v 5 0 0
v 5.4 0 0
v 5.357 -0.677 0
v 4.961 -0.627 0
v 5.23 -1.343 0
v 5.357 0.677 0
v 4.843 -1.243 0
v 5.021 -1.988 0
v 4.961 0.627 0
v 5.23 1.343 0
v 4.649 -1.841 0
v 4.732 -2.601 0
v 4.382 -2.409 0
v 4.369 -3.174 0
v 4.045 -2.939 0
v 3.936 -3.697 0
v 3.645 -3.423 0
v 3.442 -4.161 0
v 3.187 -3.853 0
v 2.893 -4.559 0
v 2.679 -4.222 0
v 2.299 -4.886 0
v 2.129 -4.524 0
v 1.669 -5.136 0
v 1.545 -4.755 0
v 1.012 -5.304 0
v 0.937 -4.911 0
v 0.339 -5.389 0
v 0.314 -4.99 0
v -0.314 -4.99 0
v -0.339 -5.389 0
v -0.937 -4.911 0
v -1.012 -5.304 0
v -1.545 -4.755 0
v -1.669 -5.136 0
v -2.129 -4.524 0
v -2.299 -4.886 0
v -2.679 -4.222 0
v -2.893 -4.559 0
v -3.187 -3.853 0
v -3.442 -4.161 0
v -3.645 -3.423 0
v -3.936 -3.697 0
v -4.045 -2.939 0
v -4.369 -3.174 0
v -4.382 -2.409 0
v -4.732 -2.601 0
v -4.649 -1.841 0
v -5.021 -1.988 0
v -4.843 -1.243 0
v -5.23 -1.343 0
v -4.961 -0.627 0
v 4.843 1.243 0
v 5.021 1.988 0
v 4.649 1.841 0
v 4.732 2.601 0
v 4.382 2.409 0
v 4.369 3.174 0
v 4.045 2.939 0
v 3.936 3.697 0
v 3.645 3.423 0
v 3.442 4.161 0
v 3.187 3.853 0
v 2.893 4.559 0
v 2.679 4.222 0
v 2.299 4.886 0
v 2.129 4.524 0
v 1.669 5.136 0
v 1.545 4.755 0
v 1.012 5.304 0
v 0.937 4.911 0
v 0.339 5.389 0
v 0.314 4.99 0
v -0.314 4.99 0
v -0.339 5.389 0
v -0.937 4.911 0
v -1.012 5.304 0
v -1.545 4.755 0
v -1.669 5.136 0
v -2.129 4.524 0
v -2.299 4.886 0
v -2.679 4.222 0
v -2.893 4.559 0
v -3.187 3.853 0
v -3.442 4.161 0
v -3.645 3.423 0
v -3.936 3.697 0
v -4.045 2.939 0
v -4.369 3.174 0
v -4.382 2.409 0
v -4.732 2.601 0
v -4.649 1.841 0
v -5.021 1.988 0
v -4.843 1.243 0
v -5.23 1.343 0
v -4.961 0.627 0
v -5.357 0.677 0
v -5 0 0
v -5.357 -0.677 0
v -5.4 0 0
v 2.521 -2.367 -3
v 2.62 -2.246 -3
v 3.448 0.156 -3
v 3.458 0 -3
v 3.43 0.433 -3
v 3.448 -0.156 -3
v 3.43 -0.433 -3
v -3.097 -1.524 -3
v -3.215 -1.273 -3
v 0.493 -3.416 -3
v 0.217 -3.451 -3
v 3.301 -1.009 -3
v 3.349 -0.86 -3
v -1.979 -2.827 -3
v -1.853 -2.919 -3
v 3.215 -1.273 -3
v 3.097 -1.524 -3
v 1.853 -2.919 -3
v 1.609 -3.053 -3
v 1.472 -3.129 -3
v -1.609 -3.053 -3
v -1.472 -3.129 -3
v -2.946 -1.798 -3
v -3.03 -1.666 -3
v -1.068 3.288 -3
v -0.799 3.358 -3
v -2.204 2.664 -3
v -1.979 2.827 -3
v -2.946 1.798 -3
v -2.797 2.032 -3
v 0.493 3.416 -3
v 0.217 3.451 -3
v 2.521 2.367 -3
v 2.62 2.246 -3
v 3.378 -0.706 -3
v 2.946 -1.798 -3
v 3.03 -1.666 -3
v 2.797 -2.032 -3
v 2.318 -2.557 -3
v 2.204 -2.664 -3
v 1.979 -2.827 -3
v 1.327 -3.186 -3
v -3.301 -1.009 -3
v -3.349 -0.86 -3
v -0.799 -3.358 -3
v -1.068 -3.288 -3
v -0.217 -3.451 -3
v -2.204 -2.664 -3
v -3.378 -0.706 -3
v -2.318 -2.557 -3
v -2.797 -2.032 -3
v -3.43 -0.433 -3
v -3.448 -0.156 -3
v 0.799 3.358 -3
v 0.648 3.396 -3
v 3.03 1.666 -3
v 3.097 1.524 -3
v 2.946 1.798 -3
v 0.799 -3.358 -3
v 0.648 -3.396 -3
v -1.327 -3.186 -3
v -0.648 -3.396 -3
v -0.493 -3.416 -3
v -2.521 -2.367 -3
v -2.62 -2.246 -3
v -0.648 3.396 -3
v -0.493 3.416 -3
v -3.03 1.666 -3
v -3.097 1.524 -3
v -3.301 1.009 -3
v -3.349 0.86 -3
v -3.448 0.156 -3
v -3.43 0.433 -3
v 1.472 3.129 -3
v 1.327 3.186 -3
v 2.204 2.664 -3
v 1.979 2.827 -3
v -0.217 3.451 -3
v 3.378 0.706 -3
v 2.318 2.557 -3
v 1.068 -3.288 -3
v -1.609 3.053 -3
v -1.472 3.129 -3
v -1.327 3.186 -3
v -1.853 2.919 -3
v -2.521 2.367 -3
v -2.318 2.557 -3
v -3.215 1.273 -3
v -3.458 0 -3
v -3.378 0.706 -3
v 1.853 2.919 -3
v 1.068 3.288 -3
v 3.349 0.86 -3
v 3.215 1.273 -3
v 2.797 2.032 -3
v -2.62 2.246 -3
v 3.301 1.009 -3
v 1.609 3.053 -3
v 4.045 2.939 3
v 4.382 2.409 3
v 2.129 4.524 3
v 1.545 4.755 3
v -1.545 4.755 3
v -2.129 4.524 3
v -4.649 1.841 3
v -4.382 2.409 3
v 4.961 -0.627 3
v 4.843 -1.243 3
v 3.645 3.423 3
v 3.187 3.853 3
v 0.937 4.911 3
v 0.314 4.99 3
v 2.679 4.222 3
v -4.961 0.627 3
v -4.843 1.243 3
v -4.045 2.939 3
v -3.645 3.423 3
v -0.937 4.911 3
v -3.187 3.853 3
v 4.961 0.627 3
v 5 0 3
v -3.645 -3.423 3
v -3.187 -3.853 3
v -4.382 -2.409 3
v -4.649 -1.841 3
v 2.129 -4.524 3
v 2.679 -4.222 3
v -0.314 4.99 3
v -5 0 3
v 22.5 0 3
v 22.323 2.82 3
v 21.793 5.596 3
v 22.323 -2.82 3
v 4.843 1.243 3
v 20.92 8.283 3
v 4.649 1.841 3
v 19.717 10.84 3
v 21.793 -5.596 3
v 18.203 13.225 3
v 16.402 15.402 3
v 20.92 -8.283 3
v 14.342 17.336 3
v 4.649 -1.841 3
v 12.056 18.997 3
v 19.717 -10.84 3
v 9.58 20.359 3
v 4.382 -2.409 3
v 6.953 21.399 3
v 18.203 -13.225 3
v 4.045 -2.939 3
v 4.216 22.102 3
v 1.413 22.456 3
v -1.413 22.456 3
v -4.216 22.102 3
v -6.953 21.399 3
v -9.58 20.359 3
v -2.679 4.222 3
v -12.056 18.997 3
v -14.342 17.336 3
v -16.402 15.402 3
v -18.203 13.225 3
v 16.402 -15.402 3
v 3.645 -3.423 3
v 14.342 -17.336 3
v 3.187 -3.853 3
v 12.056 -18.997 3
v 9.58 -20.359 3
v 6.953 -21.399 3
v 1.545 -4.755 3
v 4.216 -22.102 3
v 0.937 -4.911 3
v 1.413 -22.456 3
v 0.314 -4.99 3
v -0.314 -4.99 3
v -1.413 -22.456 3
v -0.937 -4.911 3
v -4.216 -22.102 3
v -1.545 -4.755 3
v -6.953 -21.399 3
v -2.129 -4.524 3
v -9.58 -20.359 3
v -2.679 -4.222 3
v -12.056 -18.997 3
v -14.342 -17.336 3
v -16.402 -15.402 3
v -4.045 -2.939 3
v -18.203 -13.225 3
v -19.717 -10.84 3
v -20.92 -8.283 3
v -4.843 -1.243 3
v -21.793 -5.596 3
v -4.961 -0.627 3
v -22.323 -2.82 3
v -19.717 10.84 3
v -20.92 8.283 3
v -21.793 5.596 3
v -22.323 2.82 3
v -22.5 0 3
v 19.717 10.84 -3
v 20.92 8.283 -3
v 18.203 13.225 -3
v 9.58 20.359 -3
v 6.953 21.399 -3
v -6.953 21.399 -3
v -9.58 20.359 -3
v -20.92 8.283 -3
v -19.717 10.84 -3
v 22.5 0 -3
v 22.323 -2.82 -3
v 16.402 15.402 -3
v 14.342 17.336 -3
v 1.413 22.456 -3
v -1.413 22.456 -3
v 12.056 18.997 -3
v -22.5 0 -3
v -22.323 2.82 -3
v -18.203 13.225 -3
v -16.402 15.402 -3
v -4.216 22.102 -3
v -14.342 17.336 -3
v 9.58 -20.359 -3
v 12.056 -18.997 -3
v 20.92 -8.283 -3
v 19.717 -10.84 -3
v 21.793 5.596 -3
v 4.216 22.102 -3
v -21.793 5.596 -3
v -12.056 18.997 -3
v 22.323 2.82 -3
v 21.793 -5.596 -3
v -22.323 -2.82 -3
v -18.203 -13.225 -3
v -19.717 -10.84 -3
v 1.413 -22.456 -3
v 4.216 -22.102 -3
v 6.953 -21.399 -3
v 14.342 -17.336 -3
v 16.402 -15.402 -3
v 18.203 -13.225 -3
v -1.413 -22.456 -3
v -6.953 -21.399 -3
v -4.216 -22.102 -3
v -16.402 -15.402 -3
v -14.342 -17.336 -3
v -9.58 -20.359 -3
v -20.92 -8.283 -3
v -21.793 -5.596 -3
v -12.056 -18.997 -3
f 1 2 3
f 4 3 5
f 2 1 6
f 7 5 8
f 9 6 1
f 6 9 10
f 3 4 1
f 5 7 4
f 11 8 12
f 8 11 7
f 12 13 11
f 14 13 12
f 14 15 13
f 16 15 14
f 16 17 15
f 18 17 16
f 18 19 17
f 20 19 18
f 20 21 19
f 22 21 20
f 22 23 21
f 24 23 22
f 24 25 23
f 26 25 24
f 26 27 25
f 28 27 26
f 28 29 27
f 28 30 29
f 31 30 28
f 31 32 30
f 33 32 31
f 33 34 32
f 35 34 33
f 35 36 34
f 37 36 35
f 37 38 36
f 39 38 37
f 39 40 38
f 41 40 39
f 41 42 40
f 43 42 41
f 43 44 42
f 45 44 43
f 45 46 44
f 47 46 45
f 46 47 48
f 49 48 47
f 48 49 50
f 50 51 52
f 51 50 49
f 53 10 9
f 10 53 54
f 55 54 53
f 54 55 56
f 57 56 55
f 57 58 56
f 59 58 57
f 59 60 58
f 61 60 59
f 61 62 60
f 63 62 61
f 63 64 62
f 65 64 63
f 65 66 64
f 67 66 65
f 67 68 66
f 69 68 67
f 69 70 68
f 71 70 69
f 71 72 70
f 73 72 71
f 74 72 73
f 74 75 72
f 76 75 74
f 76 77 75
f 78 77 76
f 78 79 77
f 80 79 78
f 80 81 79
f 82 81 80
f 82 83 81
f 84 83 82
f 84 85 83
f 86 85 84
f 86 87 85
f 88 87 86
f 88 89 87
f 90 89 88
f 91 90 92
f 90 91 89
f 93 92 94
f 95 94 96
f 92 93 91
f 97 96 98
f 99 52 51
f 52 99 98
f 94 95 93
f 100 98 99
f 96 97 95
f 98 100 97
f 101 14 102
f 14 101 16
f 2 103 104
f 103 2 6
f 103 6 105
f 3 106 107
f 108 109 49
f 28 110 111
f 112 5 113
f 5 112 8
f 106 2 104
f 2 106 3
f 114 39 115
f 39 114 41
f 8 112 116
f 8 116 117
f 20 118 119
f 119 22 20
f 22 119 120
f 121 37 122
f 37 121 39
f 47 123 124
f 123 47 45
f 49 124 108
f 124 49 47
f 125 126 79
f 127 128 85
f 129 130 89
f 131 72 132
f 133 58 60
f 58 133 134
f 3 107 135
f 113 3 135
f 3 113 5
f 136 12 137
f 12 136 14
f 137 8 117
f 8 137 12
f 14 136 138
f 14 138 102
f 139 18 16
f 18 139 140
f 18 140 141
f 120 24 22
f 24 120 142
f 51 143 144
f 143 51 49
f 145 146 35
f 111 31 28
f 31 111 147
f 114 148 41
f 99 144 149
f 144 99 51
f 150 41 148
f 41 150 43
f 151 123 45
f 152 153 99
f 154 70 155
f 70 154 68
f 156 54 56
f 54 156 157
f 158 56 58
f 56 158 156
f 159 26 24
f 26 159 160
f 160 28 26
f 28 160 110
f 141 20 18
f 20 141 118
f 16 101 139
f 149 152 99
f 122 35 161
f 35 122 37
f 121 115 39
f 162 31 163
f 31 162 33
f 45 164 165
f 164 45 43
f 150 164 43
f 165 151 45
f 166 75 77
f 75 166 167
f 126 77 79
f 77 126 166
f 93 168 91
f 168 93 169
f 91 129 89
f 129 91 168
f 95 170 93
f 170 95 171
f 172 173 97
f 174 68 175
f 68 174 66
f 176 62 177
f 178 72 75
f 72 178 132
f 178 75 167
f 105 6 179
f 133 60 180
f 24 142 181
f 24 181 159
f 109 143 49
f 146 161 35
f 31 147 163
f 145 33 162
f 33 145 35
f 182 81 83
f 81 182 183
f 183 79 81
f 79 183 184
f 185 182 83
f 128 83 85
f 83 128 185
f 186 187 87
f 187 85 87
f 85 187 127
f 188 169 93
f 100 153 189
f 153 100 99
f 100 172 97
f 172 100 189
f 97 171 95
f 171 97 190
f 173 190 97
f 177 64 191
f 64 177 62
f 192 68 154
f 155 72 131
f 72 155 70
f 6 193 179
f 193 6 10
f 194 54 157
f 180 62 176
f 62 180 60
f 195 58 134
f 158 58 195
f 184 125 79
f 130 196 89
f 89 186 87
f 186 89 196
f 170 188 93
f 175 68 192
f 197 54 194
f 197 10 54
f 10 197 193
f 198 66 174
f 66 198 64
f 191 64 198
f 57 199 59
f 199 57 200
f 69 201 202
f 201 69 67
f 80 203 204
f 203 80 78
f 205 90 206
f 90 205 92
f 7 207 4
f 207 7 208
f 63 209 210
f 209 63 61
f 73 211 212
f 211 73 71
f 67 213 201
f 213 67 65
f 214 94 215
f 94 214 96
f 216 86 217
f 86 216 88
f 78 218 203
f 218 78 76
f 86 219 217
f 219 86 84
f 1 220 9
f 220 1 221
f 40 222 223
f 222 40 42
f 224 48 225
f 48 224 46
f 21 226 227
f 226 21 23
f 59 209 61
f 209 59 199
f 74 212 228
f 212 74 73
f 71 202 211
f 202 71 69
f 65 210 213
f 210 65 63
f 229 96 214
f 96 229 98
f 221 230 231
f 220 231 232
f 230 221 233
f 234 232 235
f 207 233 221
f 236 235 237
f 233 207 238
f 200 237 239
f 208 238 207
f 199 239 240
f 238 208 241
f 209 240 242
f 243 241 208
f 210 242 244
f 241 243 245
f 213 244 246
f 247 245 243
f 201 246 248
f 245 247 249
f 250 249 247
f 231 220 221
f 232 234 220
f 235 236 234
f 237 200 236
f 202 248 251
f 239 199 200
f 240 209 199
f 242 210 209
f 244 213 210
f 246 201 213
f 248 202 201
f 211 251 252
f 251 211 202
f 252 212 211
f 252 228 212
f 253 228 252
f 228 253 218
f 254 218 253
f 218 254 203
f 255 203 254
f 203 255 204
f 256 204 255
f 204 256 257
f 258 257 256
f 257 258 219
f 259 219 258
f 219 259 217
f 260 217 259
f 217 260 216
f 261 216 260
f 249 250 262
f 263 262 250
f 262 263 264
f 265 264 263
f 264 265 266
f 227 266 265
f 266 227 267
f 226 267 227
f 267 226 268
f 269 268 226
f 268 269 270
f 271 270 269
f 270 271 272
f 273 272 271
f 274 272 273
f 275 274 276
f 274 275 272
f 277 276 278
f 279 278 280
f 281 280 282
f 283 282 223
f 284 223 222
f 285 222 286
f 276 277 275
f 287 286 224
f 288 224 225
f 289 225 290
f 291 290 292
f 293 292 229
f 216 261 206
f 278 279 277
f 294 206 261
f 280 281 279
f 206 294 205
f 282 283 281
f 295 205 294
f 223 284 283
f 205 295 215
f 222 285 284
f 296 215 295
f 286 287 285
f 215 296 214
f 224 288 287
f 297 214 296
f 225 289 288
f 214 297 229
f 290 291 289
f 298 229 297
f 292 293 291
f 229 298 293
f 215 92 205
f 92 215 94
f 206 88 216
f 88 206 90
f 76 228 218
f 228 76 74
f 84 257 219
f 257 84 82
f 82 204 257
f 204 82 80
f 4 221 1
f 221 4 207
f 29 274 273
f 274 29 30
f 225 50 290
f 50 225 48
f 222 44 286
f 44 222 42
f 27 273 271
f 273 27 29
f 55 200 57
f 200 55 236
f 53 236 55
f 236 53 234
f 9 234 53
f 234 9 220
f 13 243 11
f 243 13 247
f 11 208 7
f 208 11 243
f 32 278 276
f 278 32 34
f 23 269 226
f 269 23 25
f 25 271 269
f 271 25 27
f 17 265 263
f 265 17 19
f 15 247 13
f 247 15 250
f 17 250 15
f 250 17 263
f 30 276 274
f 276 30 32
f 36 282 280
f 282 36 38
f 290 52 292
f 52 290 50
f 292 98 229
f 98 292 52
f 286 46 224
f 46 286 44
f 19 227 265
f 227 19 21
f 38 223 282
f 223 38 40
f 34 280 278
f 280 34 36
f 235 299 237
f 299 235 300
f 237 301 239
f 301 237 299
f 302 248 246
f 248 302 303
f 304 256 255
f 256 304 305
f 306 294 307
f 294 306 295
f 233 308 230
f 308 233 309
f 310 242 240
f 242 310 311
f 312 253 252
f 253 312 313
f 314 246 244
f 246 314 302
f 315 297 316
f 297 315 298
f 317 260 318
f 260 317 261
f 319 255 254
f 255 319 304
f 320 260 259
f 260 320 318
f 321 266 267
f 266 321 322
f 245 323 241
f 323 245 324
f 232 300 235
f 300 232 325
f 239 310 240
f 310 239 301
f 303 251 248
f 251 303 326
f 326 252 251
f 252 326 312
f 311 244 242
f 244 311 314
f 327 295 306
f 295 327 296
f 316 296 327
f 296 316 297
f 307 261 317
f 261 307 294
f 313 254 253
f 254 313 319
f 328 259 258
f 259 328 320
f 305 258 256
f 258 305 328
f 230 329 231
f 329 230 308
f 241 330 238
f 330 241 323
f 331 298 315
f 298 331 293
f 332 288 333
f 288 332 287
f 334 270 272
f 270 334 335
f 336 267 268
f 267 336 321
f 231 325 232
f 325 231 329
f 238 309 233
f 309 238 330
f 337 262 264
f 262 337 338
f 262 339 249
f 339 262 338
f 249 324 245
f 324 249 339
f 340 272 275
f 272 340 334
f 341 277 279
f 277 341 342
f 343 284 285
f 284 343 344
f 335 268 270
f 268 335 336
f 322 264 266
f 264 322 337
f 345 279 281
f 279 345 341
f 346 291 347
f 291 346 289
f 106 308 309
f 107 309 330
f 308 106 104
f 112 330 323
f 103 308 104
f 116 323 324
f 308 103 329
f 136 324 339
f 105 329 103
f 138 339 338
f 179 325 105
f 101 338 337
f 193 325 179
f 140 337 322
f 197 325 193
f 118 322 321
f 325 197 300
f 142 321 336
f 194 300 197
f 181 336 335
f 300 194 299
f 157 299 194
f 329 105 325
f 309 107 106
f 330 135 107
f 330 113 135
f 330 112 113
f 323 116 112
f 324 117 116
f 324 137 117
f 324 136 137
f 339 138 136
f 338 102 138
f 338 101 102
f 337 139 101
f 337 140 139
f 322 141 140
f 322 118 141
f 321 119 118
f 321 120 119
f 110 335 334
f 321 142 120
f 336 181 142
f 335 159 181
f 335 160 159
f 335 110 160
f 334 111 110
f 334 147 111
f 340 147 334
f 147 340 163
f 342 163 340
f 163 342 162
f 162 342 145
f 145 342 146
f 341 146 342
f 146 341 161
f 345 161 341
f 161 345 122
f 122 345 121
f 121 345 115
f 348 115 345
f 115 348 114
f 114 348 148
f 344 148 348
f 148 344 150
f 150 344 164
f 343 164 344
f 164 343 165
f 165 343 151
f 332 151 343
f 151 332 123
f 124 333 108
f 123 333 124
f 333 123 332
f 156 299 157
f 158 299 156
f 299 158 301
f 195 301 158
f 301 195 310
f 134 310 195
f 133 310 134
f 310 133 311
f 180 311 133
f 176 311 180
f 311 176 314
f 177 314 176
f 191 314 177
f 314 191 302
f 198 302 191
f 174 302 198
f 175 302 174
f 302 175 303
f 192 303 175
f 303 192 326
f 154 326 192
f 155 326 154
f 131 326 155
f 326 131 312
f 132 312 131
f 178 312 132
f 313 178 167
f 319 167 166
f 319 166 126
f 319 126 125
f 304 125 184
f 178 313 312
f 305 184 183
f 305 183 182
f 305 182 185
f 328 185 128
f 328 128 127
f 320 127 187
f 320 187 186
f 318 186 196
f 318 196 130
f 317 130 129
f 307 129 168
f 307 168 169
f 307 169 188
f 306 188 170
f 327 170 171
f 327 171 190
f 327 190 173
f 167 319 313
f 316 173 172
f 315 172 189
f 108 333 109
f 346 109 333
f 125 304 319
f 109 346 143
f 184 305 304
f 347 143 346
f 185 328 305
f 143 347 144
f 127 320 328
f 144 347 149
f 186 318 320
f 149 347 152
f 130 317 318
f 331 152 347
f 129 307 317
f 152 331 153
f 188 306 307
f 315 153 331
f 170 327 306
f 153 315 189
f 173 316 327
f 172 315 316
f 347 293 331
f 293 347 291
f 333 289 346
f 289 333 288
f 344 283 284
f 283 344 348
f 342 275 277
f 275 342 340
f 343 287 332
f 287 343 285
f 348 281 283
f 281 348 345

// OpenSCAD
$fn = 50;

difference() {
	union() {
		translate(v = [0, 0, -3.0]) {
			cylinder(h = 6, r = 22.5);
		}
	}
	union() {
		translate(v = [0, 0, 0]) {
			rotate(a = [0, 0, 0]) {
				difference() {
					union() {
						translate(v = [0, 0, -6.0]) {
							cylinder(h = 6, r = 2.6);
						}
						translate(v = [0, 0, -3.9]) {
							cylinder(h = 3.9, r1 = 2.875, r2 = 5.4);
						}
						translate(v = [0, 0, -6.0]) {
							cylinder(h = 6, r = 2.875);
						}
						translate(v = [0, 0, -6.0]) {
							cylinder(h = 6, r = 2.6);
						}
					}
					union();
				}
			}
		}
		#cylinder(h = 3, r = 5.0);
	}
}
